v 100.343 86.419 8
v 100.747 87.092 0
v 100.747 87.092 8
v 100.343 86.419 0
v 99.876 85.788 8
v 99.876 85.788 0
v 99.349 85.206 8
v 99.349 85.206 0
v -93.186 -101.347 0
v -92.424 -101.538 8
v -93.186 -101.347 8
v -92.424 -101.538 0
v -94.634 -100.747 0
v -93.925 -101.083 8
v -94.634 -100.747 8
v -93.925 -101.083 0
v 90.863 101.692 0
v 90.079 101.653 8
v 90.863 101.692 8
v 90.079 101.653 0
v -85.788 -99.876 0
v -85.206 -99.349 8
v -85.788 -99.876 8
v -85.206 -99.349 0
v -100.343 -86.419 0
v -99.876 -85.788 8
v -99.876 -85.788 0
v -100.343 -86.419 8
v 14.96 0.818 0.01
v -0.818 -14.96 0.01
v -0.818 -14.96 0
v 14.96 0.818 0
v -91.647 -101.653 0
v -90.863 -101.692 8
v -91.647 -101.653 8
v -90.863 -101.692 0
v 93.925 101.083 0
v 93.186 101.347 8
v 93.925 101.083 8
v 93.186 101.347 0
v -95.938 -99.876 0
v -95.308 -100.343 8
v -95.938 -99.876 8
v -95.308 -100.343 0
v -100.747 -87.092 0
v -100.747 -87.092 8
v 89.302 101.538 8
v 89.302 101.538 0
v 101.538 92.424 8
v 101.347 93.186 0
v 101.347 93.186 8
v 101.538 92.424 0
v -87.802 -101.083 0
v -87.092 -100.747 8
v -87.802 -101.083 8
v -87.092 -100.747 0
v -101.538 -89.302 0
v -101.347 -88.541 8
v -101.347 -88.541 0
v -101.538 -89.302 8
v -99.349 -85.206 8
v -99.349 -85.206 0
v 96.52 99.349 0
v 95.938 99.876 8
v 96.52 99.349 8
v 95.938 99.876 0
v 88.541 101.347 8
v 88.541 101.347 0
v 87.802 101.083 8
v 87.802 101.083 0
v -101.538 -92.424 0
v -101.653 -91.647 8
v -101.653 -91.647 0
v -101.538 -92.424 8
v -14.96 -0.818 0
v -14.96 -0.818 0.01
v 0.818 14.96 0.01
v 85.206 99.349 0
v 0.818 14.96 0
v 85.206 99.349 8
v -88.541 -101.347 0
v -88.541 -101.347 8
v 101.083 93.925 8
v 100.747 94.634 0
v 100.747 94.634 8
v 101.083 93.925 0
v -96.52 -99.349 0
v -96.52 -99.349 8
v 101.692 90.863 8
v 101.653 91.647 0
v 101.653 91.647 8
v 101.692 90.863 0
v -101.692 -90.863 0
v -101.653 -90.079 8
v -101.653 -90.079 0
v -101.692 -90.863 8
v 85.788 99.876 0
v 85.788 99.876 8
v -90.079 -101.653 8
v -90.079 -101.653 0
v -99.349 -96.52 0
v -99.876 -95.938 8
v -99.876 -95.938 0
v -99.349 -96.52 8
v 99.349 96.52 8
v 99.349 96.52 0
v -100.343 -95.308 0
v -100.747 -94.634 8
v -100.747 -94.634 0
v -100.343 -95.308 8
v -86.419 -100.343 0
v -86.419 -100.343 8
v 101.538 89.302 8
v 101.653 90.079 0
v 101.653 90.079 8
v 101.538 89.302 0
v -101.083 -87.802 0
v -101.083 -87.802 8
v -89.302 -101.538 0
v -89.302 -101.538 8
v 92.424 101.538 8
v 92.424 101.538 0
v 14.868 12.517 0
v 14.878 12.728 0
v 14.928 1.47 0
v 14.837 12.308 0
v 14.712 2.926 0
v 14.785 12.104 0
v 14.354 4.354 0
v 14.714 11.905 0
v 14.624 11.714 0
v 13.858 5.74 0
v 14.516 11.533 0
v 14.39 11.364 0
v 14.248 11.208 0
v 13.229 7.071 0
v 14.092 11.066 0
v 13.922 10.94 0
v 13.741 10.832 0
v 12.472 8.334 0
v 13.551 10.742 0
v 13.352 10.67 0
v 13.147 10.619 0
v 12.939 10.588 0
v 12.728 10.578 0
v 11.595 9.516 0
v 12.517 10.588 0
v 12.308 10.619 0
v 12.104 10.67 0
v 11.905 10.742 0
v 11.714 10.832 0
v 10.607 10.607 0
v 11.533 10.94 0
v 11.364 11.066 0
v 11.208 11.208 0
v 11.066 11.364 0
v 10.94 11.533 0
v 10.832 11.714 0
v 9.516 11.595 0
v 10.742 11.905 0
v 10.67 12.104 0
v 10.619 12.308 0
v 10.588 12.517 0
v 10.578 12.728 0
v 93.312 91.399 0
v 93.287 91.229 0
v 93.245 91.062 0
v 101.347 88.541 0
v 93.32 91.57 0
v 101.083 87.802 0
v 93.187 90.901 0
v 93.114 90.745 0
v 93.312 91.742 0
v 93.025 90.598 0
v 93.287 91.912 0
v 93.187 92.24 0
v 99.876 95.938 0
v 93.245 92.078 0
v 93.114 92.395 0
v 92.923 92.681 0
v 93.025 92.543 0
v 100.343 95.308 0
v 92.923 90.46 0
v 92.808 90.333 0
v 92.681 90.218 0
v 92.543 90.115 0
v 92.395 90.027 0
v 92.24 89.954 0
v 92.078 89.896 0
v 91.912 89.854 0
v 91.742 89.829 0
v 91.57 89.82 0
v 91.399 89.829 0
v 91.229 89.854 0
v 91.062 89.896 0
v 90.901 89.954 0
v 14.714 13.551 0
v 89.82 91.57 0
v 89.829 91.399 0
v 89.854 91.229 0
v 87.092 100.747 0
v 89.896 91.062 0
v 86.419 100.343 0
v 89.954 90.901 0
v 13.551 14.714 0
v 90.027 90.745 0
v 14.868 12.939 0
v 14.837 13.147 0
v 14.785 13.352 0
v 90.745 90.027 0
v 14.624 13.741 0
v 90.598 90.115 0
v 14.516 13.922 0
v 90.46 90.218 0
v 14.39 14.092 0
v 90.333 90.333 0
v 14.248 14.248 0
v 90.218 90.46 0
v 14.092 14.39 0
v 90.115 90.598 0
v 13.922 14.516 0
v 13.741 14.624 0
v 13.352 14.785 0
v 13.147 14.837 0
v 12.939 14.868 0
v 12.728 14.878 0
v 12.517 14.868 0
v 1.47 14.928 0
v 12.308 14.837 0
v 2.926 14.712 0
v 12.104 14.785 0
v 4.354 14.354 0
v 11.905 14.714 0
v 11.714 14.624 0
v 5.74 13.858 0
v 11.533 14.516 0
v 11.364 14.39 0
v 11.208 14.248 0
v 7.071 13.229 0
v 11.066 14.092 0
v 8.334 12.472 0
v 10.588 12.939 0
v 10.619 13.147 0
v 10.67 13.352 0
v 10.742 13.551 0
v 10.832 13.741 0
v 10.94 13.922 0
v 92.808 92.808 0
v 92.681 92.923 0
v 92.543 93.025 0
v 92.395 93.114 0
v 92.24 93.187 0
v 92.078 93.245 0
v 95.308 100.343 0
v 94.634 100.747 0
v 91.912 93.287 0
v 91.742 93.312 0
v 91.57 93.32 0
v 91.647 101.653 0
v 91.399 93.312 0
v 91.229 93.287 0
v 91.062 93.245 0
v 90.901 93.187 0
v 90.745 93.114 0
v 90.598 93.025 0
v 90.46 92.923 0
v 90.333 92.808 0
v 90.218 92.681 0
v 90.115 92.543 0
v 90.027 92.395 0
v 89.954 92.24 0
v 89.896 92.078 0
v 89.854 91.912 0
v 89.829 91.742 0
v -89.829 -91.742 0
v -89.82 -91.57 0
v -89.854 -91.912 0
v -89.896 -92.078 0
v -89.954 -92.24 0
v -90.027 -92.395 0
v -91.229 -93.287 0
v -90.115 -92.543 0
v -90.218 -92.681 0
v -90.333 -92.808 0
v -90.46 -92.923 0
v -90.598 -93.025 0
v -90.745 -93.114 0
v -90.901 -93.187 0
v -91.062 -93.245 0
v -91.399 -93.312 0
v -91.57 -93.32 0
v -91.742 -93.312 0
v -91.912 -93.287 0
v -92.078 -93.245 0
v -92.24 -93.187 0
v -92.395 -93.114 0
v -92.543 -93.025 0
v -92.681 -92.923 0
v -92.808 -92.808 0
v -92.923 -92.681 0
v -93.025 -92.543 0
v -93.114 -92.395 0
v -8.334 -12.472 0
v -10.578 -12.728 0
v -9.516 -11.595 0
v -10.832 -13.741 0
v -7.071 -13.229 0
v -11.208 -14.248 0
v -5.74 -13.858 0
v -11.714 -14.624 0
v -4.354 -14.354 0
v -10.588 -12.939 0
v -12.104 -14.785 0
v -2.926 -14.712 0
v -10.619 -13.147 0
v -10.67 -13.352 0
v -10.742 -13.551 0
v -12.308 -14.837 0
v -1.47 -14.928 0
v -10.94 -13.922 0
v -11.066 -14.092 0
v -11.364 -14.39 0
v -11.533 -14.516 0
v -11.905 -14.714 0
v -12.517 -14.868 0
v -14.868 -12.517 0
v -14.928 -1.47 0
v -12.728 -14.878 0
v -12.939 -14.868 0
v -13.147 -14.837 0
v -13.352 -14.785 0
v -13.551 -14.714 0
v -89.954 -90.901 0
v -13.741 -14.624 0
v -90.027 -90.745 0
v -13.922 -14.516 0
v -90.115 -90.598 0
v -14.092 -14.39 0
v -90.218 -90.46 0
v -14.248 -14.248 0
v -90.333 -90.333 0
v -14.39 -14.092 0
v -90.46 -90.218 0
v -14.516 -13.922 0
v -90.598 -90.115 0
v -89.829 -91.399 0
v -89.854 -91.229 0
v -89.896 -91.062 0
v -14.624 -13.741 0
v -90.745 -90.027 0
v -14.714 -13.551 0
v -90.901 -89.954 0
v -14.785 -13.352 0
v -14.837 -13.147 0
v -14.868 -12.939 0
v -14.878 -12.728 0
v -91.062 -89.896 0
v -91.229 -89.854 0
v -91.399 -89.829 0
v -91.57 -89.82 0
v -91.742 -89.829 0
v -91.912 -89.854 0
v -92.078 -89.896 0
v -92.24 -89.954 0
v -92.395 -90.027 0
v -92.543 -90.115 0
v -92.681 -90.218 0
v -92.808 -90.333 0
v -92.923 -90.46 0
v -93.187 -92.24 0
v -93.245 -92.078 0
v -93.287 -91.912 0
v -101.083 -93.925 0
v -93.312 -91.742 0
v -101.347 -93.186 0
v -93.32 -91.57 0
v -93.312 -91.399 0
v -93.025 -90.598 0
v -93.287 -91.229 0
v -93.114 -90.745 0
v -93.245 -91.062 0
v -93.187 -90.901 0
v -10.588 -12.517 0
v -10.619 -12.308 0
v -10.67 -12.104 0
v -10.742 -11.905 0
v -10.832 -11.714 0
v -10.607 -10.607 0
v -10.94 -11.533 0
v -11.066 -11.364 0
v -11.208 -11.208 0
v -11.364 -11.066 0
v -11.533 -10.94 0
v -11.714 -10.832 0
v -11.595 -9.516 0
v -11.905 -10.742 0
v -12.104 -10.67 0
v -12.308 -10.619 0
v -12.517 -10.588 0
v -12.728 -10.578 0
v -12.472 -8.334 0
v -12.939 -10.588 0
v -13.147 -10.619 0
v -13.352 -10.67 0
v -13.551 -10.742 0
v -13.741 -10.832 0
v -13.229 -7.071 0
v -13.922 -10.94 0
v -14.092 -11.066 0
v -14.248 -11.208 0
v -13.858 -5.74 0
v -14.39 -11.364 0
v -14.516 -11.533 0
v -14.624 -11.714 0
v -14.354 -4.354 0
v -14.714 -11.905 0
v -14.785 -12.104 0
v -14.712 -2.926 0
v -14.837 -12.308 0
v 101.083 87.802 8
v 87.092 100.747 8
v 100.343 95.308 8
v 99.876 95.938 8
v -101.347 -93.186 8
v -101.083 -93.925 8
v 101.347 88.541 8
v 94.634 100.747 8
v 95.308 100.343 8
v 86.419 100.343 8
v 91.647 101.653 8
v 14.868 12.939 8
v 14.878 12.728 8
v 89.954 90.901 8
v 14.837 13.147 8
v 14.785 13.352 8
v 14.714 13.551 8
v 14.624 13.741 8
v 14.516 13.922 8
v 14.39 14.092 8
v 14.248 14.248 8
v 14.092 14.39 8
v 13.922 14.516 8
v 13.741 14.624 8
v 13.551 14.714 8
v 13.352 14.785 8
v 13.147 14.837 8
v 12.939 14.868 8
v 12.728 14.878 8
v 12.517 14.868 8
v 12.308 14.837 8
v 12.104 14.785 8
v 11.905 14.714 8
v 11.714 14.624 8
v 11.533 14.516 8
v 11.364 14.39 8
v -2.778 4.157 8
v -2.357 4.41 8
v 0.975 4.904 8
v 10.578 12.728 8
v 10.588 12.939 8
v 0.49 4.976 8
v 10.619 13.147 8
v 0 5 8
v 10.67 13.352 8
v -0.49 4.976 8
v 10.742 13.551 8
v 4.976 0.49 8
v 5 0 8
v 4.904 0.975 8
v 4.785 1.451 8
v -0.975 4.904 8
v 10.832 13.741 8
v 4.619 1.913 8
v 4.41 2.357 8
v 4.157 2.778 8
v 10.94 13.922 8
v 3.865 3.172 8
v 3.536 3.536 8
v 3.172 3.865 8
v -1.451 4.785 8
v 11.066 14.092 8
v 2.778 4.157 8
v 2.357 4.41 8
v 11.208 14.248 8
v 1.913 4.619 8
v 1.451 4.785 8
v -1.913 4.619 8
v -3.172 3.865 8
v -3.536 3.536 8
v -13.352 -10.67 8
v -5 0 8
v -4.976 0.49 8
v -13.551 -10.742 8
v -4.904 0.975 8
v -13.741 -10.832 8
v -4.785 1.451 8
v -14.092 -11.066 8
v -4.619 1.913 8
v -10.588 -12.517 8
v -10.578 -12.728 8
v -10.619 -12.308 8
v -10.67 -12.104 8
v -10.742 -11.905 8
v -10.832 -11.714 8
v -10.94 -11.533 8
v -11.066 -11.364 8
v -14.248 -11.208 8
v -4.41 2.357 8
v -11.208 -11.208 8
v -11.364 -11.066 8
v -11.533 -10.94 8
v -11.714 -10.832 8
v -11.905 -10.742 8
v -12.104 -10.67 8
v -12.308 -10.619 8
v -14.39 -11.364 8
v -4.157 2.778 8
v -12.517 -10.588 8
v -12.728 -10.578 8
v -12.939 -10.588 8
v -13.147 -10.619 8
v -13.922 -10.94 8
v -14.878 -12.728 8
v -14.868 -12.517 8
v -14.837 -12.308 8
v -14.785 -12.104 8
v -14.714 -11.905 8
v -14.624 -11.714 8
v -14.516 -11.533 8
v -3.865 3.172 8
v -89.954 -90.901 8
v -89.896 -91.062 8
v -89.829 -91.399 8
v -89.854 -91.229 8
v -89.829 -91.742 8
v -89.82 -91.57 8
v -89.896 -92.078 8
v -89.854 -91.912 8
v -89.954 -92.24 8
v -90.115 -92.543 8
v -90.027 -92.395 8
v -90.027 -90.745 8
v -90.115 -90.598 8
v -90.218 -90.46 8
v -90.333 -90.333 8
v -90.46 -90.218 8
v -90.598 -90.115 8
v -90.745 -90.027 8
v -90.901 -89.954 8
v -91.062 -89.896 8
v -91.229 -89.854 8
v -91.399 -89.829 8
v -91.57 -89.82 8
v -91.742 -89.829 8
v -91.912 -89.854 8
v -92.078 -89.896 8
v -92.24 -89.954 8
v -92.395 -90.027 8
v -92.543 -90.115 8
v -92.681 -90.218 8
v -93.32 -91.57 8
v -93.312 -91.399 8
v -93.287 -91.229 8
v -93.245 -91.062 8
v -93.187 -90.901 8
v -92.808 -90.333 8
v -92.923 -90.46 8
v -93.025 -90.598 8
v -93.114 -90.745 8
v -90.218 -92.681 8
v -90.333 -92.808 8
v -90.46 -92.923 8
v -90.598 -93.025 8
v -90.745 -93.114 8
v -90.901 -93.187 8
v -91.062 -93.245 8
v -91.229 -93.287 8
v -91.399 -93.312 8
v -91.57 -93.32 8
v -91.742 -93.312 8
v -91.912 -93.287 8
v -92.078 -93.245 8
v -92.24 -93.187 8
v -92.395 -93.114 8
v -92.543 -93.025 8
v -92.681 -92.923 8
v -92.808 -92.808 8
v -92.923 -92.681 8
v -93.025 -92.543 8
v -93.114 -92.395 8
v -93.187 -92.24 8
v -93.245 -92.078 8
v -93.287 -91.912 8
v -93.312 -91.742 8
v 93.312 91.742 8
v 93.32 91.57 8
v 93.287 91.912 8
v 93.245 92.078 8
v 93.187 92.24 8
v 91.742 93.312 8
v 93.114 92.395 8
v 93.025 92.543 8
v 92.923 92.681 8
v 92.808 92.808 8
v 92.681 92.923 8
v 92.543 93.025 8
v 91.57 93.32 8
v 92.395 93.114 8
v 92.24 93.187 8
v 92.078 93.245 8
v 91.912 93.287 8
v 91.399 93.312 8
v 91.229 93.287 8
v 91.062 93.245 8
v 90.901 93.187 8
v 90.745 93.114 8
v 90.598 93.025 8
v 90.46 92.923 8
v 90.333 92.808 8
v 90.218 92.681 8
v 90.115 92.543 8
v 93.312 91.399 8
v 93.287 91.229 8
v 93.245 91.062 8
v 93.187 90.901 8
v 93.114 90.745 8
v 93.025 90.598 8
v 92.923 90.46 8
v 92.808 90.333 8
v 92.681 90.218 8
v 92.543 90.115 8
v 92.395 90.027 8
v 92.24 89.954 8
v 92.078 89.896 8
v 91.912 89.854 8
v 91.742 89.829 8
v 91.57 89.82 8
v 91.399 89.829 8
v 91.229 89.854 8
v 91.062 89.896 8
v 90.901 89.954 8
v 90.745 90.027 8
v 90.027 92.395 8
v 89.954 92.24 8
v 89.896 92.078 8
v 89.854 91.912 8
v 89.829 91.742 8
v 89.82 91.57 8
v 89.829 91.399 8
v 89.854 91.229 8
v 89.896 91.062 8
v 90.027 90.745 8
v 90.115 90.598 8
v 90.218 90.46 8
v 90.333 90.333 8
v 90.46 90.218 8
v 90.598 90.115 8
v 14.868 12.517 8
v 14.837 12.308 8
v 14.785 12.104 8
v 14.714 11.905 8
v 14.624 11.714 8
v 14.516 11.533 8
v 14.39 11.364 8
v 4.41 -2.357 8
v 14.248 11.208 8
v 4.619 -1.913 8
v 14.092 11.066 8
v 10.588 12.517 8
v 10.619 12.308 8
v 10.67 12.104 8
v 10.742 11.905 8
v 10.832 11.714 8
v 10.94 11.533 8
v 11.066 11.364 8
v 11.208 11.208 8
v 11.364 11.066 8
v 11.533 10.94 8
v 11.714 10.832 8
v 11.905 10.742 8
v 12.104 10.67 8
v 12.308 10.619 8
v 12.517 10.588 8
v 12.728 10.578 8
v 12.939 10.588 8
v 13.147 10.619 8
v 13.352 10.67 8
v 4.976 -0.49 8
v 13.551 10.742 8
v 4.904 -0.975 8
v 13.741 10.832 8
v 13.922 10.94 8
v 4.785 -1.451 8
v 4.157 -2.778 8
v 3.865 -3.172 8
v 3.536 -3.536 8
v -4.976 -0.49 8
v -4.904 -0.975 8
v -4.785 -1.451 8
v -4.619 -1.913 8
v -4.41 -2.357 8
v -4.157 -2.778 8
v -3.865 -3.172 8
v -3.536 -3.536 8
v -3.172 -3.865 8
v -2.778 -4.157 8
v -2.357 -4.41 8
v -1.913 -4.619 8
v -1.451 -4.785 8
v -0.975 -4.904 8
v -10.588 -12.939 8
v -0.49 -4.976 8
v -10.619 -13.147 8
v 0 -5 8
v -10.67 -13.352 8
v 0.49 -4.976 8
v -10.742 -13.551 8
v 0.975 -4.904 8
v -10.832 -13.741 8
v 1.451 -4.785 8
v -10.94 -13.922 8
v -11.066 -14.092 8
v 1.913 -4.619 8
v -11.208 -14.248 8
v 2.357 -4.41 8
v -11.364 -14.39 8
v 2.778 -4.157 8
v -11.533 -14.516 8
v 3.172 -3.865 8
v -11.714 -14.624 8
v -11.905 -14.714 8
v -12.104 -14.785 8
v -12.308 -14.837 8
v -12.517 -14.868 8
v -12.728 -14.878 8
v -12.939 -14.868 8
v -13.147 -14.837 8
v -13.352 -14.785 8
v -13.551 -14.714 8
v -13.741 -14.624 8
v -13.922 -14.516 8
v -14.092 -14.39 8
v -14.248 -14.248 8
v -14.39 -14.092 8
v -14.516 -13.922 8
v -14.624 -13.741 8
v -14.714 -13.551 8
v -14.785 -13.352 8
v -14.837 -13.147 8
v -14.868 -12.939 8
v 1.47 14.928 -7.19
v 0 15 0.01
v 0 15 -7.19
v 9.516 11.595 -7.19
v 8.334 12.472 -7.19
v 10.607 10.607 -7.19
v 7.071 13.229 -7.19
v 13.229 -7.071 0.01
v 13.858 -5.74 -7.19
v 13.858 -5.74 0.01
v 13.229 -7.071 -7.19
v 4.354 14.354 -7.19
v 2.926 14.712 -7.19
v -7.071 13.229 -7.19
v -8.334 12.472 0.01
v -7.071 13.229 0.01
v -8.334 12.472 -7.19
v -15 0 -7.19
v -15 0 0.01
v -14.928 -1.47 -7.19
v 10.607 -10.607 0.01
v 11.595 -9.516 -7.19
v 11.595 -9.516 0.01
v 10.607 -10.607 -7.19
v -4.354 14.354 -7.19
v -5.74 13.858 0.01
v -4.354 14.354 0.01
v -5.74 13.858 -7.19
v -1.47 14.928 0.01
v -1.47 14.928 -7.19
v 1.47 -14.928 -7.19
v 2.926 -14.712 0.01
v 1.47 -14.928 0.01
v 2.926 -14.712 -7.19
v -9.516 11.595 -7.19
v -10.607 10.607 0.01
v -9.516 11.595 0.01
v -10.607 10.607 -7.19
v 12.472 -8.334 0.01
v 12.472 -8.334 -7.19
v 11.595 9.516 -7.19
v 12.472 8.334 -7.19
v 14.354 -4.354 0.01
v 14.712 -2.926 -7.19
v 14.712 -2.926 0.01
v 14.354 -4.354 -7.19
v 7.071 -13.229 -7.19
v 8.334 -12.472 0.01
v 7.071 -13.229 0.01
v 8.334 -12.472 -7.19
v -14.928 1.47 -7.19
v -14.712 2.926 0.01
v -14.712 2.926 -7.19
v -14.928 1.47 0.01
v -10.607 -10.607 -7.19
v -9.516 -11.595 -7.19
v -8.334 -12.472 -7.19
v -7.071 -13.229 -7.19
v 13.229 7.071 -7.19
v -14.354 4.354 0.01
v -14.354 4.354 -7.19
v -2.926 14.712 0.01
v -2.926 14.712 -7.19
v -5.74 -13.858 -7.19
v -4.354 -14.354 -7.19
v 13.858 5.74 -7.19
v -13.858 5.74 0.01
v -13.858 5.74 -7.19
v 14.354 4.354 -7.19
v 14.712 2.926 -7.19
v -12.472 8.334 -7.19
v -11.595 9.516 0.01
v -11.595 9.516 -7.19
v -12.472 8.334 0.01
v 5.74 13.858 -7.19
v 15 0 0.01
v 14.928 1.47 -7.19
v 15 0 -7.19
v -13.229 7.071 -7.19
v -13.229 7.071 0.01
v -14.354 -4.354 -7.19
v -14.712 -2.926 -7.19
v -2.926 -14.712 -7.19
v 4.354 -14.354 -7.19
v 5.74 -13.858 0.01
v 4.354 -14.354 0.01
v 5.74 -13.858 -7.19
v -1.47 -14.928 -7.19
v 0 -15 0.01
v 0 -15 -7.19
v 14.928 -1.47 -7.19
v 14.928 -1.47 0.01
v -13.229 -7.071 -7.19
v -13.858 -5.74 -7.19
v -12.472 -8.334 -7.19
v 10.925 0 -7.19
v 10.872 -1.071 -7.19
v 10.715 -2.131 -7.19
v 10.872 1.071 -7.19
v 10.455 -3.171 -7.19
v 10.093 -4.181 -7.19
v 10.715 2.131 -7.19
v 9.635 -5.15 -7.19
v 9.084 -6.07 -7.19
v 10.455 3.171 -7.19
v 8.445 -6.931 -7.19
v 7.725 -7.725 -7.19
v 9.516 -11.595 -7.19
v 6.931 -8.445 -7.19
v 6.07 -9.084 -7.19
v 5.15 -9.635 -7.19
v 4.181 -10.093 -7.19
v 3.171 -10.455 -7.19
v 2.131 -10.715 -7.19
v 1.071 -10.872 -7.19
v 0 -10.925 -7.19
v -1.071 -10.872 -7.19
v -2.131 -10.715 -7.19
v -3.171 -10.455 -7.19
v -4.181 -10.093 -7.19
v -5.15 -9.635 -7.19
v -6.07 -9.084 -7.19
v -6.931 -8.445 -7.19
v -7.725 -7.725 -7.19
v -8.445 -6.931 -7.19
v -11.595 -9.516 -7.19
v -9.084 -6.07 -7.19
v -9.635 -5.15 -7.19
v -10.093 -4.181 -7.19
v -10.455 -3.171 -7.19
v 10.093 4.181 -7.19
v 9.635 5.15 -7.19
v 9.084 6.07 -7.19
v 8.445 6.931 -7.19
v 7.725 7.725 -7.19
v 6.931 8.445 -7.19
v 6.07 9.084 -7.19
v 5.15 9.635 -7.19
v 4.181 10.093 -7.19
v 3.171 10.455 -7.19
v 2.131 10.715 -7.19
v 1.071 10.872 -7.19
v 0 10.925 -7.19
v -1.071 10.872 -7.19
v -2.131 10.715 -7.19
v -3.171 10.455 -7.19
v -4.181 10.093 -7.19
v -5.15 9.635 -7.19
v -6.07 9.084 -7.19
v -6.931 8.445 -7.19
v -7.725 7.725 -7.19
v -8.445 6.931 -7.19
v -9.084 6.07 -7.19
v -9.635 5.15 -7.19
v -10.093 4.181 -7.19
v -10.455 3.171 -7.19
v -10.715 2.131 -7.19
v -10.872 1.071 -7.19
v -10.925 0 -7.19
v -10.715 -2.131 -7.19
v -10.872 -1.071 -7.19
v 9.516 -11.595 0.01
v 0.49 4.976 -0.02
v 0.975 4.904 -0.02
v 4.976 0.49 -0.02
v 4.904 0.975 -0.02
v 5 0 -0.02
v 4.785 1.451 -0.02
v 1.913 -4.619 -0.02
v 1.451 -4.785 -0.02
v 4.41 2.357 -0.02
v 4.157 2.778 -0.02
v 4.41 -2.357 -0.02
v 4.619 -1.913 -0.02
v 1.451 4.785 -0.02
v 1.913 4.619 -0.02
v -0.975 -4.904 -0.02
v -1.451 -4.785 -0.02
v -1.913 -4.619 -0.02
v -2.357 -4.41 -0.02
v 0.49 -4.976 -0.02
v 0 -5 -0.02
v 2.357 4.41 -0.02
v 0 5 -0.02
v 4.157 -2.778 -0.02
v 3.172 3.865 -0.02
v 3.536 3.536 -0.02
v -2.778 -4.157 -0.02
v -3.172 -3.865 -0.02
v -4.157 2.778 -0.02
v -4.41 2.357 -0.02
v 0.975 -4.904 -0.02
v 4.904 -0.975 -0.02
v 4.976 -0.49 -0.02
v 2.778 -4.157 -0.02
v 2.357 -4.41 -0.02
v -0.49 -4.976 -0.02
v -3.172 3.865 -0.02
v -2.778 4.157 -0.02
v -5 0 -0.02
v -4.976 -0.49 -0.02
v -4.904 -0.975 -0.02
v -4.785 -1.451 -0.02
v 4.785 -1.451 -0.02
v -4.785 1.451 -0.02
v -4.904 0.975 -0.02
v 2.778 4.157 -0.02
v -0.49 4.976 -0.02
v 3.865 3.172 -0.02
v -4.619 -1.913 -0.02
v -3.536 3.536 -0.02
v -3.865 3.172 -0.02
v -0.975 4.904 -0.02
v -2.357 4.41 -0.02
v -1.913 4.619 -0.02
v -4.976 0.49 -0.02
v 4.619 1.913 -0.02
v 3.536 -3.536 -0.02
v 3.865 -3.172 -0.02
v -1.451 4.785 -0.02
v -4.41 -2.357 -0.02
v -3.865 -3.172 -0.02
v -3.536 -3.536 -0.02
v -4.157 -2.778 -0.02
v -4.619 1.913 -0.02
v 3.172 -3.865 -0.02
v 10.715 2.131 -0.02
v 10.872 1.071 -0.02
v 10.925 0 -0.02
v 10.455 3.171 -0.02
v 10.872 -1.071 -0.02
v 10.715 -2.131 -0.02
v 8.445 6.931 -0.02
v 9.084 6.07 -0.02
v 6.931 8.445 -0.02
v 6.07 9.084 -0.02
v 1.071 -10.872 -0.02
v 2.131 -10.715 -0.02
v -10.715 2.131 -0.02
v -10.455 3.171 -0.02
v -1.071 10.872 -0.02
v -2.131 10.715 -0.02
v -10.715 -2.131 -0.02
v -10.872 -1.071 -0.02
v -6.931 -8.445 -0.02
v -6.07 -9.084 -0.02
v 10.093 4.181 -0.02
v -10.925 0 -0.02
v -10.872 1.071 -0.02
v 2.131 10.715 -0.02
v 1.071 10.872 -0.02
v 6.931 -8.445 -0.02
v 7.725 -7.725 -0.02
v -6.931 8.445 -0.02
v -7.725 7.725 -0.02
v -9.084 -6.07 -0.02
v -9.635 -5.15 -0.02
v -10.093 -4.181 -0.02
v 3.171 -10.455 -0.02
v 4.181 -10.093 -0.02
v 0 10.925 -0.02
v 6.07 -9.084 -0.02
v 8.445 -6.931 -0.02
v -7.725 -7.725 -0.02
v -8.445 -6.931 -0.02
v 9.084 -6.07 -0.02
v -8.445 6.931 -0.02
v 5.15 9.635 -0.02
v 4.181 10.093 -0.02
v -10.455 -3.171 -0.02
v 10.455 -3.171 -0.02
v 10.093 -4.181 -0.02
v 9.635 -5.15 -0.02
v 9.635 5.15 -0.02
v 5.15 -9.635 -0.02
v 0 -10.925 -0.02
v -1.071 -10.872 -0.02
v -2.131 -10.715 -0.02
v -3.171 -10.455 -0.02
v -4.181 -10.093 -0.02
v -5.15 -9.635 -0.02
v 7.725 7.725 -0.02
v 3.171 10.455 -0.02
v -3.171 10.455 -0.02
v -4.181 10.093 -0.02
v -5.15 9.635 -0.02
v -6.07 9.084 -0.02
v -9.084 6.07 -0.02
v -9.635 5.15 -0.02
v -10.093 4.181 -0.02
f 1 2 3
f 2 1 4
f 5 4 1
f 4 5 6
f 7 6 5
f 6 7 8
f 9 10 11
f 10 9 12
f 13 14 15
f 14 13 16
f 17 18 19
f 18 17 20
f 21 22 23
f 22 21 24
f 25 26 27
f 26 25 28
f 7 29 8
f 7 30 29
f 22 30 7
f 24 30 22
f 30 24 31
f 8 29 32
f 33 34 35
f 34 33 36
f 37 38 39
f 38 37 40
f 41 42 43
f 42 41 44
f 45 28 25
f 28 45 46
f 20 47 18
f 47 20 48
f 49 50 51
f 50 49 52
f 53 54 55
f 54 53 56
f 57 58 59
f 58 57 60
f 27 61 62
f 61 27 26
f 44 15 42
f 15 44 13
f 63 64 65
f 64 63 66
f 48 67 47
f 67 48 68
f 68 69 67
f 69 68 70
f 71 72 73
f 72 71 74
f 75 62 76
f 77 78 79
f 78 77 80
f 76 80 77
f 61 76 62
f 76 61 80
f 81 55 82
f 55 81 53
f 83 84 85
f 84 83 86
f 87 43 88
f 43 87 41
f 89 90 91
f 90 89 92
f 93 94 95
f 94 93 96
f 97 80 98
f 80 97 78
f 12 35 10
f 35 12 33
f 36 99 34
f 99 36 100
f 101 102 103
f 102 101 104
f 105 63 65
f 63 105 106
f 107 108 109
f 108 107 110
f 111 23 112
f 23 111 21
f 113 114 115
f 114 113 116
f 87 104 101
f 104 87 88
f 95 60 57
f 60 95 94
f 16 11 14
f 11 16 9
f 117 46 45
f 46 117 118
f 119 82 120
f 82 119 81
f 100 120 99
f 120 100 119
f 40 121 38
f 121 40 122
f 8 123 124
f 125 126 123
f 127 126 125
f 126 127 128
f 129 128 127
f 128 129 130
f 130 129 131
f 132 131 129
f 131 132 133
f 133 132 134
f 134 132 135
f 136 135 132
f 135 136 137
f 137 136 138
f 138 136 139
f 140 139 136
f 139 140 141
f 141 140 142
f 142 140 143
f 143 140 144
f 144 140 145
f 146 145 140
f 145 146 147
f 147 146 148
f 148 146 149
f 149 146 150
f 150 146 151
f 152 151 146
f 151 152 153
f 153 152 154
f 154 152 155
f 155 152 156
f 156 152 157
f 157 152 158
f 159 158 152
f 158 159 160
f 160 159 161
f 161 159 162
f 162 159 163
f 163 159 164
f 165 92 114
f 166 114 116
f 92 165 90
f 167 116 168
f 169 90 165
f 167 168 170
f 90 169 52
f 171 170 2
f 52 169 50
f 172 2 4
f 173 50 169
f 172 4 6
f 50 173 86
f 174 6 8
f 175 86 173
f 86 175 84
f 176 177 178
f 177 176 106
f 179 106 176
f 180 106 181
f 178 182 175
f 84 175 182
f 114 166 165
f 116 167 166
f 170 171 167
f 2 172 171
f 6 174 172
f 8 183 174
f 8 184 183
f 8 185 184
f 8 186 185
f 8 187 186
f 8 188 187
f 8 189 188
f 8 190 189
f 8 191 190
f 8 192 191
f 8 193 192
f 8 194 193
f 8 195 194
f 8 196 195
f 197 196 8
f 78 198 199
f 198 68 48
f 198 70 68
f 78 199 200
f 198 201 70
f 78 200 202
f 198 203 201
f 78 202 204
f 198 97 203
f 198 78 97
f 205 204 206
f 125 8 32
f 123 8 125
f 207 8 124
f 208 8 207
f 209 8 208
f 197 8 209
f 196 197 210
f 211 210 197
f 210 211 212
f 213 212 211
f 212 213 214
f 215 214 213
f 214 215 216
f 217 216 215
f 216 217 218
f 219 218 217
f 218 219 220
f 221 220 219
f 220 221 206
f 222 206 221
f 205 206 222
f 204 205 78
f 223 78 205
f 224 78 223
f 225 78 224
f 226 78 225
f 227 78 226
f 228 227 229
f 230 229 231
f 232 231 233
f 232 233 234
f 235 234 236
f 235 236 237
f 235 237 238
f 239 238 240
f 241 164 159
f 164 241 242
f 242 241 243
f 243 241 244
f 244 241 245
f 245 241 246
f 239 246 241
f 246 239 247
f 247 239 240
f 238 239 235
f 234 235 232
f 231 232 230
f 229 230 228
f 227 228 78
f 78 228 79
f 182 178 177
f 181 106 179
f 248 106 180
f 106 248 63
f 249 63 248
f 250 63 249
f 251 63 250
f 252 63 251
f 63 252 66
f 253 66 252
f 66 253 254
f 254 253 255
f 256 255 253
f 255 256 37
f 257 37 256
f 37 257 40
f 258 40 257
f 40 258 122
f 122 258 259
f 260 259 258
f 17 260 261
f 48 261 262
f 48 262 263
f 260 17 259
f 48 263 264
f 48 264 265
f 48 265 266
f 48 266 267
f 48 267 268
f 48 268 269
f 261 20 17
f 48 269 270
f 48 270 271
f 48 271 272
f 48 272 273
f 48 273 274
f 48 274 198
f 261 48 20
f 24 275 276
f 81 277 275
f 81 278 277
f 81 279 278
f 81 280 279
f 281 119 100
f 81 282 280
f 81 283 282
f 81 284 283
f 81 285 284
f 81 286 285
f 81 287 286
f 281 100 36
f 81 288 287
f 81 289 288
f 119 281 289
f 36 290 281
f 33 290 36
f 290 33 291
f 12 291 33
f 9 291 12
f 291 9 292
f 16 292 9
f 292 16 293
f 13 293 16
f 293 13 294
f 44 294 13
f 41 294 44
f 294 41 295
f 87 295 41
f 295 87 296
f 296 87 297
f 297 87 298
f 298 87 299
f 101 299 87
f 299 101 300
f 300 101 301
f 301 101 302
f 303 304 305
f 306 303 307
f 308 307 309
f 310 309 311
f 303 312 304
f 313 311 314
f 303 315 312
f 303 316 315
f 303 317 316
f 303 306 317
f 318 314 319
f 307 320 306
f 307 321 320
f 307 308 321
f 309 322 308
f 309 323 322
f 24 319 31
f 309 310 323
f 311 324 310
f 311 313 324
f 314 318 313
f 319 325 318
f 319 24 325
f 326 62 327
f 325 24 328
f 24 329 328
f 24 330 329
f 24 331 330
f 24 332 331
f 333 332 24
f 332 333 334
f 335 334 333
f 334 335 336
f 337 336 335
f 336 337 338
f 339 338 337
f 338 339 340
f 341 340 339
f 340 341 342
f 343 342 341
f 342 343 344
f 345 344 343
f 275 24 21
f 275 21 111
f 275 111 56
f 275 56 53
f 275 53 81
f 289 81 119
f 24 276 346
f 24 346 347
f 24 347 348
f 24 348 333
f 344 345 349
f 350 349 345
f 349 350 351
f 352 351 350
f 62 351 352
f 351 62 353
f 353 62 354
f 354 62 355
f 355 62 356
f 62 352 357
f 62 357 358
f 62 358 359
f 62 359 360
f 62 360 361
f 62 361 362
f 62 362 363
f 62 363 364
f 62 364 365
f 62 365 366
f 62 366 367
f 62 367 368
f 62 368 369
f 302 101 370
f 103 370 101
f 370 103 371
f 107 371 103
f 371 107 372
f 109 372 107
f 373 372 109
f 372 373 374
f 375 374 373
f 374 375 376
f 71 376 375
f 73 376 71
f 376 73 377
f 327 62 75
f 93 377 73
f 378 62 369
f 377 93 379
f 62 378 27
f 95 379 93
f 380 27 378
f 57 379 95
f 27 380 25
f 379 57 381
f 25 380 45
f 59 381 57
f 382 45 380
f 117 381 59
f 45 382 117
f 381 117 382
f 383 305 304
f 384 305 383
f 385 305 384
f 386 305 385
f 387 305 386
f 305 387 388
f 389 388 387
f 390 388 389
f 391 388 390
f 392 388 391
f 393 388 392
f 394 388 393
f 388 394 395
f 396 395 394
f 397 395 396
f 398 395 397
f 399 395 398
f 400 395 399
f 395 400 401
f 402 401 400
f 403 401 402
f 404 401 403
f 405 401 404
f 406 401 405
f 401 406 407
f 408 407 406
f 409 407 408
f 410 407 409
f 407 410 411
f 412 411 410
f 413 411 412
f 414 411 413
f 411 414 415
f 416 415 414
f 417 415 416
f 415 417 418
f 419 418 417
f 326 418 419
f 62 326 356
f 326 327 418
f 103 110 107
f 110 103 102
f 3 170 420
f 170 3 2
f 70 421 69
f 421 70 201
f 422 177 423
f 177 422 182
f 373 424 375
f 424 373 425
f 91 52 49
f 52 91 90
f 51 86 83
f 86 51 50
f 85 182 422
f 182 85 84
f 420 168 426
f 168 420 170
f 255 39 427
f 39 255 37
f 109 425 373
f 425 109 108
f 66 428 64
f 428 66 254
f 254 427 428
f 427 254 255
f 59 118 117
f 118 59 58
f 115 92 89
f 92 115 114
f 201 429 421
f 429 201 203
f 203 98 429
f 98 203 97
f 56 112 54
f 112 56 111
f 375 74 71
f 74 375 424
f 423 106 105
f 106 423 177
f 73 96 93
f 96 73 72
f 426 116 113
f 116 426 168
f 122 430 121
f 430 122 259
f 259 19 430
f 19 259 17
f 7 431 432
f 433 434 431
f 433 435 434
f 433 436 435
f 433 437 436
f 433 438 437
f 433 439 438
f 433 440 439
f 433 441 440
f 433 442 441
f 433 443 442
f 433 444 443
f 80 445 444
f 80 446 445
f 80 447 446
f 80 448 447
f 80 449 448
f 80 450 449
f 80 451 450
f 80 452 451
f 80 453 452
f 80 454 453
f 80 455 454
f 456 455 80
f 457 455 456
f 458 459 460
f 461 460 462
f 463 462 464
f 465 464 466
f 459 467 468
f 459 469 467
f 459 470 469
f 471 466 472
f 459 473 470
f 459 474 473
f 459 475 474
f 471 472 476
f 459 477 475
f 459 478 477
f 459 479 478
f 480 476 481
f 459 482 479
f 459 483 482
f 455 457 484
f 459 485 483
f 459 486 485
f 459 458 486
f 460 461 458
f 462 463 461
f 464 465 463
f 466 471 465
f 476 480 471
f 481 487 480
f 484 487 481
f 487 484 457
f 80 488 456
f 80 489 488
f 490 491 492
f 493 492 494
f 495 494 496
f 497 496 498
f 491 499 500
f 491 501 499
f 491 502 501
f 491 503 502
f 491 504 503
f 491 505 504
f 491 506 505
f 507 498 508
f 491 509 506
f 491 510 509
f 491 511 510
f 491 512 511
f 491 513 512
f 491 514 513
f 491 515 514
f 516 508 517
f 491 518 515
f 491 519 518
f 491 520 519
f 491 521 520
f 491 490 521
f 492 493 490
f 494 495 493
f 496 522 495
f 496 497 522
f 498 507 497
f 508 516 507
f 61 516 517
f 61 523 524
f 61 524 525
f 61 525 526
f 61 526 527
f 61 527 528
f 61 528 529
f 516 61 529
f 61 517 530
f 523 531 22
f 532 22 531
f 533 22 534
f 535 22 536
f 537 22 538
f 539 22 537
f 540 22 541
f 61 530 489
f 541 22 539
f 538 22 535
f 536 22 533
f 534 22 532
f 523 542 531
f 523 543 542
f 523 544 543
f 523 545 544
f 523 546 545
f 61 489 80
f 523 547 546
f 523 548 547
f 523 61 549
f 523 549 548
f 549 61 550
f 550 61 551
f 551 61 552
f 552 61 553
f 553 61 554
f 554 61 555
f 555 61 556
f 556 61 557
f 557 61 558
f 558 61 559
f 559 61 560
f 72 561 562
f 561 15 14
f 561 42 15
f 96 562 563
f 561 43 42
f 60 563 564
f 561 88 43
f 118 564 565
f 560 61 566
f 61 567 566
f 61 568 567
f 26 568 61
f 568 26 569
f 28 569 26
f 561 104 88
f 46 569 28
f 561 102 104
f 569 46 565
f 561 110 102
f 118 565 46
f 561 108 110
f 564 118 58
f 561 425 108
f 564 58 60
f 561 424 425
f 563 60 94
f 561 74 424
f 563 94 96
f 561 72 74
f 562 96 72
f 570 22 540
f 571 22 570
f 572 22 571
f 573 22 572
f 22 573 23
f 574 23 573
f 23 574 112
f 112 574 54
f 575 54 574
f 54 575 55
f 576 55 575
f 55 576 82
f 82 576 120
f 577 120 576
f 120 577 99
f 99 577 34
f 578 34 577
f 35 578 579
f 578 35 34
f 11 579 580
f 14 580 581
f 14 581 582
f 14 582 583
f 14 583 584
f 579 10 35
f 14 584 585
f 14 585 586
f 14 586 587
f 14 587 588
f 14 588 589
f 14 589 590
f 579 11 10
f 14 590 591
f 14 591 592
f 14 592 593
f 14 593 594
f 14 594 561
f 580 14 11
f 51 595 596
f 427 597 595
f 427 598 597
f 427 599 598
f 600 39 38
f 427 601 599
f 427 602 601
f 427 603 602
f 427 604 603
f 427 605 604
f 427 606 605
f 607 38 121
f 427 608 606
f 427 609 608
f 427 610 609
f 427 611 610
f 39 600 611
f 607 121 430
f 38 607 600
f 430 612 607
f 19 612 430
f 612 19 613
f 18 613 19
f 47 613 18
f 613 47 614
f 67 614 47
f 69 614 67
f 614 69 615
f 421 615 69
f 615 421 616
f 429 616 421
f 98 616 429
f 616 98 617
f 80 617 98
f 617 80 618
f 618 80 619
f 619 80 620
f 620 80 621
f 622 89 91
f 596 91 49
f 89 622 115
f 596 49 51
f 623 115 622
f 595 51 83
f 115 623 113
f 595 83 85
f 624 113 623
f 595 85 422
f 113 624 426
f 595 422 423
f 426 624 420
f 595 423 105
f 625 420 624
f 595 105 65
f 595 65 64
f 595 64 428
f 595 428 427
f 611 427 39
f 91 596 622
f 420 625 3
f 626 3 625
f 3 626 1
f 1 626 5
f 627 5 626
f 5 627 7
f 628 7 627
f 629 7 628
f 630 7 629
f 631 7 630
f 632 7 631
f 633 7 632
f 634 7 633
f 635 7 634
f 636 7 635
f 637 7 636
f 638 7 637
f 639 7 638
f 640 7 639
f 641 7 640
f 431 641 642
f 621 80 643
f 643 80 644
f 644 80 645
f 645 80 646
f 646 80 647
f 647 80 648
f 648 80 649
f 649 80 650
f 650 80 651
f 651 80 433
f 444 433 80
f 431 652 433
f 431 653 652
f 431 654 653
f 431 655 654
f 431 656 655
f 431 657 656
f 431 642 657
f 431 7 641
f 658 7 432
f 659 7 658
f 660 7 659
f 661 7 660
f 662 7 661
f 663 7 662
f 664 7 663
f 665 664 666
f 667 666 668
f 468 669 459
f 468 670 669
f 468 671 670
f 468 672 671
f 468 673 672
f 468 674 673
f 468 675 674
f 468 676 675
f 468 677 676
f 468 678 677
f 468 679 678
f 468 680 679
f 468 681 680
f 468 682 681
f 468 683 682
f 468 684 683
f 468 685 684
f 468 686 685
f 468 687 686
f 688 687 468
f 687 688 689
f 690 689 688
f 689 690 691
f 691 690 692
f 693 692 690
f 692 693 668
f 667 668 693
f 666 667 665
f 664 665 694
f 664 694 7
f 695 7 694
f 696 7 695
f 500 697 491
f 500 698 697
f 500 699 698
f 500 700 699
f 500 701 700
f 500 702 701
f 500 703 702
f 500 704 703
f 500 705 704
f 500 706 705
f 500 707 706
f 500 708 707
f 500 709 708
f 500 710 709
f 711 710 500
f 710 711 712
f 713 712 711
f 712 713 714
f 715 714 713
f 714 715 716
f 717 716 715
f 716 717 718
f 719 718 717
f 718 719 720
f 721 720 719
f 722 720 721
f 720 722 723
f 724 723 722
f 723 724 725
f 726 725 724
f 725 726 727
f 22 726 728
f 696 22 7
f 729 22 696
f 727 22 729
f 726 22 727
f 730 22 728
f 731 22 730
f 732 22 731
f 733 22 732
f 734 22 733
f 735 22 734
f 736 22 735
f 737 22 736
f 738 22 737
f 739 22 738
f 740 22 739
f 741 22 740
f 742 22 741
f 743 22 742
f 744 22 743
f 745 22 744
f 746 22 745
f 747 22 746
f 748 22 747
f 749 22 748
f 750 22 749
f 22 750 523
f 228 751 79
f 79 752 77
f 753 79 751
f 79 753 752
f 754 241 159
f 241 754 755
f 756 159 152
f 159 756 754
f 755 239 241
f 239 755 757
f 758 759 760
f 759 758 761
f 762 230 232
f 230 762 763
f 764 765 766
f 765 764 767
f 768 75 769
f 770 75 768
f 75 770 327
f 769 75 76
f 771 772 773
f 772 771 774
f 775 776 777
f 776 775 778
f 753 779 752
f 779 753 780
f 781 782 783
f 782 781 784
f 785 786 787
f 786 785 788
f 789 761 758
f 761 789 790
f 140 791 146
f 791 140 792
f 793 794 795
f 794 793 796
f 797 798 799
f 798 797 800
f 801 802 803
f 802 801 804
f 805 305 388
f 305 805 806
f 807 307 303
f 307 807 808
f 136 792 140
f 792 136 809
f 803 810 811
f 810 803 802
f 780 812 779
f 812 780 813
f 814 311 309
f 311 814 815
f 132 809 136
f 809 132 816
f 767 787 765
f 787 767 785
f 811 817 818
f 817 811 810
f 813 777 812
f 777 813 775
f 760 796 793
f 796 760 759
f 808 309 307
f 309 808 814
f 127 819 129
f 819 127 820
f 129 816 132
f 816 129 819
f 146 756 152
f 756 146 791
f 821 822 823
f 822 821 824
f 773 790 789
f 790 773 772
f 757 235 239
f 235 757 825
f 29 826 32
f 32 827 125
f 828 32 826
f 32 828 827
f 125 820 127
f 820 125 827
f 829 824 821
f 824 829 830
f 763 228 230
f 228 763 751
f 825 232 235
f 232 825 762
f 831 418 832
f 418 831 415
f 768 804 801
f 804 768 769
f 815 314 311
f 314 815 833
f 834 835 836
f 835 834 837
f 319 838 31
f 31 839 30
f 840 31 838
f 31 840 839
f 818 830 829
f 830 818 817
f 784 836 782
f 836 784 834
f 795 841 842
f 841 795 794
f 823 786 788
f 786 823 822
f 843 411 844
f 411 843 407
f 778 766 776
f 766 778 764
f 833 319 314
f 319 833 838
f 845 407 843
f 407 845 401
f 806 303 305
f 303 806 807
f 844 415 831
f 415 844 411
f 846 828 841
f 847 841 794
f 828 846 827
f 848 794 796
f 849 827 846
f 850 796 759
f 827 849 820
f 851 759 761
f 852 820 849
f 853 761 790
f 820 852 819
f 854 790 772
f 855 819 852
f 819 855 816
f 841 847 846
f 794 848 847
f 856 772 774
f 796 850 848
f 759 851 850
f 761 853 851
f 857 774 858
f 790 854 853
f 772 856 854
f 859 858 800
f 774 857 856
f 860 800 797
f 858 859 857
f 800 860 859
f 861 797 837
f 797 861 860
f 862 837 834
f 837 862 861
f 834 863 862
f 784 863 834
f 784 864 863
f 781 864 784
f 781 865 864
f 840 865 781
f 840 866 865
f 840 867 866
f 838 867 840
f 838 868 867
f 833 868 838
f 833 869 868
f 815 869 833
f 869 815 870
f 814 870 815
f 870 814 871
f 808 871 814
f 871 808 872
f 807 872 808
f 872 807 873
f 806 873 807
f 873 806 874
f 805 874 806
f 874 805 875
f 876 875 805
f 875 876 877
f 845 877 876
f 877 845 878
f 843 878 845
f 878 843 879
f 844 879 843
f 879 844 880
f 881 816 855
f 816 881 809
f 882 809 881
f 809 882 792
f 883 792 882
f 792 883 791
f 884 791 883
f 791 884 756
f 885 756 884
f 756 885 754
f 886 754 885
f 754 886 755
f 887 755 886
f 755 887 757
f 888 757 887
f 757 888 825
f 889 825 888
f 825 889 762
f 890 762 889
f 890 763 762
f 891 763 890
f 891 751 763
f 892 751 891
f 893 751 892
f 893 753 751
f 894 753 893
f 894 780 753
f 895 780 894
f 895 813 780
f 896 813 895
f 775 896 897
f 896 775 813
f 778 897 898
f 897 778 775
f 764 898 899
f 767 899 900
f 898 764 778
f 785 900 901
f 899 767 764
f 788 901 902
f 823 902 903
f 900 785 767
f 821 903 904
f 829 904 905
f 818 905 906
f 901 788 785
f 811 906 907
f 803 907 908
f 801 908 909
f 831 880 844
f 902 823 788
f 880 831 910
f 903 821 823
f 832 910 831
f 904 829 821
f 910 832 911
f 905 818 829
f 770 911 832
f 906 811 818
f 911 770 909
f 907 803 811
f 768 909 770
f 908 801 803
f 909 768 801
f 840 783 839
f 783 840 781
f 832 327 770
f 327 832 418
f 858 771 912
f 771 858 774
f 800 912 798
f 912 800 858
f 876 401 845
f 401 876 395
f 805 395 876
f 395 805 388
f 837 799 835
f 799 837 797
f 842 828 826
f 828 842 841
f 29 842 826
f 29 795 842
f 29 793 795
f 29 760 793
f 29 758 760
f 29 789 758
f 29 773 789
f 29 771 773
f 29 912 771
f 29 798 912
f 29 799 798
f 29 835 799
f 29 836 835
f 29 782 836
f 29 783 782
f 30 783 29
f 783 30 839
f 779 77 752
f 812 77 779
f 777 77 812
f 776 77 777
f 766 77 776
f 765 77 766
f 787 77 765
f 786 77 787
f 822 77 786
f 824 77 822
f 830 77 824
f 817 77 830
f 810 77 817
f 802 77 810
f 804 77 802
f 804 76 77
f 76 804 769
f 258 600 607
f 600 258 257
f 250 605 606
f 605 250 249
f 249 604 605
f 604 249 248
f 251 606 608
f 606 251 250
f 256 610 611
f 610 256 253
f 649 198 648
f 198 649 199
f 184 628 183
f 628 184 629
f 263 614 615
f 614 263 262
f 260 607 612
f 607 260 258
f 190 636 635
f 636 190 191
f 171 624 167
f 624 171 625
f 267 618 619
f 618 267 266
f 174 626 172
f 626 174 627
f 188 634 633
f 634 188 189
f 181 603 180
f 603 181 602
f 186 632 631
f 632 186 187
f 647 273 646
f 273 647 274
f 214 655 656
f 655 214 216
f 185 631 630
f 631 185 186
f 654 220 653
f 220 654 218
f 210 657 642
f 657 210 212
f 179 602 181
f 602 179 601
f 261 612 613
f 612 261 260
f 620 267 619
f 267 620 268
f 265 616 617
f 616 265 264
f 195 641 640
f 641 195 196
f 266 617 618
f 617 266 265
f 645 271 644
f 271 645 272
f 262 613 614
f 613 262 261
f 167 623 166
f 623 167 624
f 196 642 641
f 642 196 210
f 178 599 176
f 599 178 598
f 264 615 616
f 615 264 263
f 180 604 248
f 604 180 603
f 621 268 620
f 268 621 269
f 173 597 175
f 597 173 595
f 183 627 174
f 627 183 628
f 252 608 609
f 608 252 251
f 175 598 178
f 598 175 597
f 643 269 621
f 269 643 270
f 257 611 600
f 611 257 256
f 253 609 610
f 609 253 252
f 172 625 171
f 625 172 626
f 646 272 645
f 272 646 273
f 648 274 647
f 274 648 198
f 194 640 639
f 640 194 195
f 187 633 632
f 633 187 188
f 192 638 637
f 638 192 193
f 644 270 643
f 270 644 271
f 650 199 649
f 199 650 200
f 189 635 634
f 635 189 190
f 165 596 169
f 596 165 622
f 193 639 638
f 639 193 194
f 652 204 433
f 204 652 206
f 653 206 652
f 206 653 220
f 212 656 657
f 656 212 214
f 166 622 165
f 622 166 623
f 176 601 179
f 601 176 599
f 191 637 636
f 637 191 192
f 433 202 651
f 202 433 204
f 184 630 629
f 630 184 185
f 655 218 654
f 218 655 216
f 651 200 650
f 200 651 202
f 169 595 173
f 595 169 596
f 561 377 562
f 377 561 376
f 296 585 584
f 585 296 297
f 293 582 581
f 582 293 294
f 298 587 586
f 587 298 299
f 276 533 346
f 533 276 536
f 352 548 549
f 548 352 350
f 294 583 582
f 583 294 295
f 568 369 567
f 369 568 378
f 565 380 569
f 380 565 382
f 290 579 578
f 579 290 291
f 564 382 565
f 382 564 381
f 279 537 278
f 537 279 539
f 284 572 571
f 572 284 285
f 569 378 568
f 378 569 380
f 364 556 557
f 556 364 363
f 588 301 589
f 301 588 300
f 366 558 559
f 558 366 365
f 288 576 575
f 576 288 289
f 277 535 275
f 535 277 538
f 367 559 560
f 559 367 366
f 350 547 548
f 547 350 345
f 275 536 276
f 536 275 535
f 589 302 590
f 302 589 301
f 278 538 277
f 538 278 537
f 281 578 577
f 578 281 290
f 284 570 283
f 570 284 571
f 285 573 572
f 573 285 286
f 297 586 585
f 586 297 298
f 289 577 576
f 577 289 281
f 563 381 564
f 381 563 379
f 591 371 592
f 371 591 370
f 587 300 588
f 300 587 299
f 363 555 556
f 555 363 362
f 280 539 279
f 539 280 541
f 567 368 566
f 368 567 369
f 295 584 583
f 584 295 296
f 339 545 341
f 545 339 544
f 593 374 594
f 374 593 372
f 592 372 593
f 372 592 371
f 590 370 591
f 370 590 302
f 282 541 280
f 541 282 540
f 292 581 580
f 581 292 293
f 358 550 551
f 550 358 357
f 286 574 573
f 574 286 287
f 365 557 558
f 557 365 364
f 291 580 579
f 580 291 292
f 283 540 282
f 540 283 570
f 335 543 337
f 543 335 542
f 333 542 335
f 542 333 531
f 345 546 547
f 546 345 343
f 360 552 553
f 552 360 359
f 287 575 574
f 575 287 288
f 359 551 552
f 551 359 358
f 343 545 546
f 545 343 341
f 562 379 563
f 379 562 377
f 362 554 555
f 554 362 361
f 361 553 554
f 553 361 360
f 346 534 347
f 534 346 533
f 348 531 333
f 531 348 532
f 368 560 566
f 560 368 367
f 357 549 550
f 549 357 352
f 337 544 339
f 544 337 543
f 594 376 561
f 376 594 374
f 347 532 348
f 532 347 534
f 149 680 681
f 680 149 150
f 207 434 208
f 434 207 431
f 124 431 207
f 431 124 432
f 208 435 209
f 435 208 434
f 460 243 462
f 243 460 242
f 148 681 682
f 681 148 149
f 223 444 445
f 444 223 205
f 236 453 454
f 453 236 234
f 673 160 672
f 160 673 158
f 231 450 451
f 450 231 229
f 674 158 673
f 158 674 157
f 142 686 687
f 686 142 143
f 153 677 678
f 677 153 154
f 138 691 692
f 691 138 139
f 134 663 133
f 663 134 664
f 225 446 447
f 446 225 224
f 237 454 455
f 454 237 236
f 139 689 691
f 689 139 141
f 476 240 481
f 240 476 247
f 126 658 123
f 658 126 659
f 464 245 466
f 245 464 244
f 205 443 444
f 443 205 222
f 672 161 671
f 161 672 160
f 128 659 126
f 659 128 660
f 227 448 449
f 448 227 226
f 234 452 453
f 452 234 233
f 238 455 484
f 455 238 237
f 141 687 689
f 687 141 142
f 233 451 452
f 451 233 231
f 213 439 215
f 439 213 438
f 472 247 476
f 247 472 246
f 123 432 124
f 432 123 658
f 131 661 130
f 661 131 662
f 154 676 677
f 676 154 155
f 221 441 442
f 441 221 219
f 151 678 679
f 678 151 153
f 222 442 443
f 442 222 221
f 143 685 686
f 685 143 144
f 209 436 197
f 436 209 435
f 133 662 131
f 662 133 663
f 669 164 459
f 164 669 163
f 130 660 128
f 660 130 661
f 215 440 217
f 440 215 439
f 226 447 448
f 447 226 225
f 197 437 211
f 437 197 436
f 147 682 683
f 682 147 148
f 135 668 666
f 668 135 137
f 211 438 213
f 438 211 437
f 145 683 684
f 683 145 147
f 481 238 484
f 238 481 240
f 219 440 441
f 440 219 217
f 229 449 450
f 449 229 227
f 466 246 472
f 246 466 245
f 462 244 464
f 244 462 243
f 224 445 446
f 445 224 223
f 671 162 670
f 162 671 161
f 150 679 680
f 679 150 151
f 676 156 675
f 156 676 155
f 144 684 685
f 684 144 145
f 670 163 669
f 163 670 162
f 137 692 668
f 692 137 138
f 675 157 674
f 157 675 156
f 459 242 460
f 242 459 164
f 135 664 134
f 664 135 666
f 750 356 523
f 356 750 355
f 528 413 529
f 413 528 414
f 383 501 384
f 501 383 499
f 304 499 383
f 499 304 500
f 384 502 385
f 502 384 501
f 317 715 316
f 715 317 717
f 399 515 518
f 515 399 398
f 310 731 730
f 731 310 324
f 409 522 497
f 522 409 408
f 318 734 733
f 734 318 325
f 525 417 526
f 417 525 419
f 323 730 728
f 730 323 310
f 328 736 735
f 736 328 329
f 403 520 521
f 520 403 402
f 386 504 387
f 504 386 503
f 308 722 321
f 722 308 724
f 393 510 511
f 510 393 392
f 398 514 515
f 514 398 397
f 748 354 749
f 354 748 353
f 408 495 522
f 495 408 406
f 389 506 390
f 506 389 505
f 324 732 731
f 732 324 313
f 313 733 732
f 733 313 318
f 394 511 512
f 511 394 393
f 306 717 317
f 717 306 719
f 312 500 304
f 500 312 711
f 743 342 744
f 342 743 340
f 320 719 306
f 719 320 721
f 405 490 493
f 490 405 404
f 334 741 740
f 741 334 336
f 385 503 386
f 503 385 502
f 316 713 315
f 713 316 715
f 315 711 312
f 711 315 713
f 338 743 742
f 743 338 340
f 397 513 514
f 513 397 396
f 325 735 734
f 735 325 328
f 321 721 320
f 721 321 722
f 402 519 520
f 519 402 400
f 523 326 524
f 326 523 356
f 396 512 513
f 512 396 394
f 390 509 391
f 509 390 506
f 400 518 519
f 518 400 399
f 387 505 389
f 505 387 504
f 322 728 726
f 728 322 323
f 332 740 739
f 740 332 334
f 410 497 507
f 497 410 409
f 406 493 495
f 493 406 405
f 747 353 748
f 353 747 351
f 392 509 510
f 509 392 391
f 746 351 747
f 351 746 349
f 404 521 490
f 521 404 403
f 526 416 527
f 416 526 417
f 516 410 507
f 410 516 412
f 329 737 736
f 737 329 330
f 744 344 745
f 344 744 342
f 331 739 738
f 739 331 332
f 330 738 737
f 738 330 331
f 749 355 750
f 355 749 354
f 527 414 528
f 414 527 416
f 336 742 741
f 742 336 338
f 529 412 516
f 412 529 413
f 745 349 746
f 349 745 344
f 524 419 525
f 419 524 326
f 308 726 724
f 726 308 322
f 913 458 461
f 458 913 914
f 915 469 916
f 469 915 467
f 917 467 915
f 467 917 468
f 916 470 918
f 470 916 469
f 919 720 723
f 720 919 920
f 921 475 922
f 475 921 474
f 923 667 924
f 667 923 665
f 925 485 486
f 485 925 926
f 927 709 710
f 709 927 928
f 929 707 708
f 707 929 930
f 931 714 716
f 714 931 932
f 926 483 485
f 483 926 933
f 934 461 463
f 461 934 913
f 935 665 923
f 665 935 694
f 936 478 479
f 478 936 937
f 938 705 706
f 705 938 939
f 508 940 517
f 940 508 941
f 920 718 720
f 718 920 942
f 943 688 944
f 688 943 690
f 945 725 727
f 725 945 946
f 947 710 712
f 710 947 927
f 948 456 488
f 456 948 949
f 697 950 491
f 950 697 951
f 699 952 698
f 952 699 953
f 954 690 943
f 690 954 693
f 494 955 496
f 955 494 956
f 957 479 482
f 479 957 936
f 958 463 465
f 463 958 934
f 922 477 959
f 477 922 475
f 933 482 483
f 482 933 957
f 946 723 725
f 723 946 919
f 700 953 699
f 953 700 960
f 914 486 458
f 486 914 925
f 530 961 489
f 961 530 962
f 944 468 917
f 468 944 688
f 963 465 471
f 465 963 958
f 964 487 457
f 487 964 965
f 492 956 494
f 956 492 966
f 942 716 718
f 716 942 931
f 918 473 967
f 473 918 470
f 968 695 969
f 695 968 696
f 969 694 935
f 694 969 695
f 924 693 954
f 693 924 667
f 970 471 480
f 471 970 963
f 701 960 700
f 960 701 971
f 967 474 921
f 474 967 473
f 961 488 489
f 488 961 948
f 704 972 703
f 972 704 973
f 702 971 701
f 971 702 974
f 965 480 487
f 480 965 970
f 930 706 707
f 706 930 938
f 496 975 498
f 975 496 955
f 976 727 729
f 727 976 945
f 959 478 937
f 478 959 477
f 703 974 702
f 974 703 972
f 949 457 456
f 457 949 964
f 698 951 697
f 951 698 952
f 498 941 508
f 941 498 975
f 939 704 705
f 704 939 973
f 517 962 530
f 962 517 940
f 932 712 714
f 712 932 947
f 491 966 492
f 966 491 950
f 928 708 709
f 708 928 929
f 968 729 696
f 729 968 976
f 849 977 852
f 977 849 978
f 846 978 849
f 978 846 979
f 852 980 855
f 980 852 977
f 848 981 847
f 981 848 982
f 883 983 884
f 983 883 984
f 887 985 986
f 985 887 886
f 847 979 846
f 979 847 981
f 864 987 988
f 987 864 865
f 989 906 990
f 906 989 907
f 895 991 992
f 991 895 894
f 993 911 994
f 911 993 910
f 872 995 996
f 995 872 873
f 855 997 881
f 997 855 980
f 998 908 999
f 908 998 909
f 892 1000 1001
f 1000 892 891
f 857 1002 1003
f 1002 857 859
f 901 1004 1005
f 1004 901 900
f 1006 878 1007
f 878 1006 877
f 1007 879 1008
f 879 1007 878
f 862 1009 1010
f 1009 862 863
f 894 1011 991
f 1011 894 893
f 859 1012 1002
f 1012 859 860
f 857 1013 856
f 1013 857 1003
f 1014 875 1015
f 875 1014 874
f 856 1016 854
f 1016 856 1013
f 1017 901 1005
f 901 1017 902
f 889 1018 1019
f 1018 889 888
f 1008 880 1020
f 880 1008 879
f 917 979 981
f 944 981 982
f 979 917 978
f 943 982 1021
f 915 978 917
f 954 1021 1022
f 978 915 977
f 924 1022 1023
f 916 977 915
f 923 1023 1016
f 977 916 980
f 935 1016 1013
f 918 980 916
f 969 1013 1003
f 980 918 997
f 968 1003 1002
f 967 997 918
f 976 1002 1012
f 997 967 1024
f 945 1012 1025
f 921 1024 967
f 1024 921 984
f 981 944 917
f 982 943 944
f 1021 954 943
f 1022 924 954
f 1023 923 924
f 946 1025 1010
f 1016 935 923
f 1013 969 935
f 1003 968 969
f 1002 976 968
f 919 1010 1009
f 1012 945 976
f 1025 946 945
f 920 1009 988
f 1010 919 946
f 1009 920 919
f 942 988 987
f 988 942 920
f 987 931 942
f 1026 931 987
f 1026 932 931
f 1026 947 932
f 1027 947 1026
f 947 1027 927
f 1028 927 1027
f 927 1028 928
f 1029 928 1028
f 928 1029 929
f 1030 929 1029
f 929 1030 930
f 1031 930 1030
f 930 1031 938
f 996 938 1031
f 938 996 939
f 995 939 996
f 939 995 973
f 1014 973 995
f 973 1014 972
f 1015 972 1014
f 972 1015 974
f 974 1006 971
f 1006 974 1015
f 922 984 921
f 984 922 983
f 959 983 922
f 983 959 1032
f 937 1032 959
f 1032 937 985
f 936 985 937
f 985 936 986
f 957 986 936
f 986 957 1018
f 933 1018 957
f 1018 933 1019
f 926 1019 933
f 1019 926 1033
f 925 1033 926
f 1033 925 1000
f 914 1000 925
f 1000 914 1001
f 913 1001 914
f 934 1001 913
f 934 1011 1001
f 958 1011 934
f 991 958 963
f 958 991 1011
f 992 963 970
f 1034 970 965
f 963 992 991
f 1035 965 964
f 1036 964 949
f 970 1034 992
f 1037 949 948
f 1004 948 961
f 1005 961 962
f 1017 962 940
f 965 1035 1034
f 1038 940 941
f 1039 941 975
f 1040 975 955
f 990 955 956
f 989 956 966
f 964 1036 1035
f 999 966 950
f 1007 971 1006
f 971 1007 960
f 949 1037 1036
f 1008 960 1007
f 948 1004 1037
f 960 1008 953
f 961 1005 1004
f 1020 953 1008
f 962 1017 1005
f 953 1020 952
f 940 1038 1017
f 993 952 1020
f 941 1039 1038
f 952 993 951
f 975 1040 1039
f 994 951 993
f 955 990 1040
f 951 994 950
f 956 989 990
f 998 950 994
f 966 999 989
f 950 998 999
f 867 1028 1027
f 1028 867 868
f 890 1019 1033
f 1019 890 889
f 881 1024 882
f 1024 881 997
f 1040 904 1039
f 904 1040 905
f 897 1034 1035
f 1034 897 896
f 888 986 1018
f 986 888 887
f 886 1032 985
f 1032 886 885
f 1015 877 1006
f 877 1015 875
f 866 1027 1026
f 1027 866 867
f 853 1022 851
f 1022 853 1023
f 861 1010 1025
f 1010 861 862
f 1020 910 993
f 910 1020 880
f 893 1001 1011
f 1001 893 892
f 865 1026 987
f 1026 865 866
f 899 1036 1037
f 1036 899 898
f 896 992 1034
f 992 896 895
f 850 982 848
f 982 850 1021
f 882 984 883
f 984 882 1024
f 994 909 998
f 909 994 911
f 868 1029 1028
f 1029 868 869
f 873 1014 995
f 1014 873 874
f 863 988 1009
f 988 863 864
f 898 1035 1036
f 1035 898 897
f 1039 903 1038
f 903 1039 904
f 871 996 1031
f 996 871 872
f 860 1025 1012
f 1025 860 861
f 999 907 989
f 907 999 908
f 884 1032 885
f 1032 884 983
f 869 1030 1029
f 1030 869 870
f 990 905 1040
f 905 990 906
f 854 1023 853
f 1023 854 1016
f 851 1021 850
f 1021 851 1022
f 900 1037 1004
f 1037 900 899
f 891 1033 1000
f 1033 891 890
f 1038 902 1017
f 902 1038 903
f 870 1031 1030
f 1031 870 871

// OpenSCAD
// Gen-DD — front BEARING BRIDGE (bar endbell, 2026-10-10): a 608 boss on a 20 mm wide bar that spans the
// two frame rods at 45 deg and 45+180 deg (R = flange_bolt_r). The front bridge uses the rods at 45/225 deg, the rear
// bridge the rods at 135/315 deg, so the two bridges cross at 90 deg and the stator is held at 4 points.
// A bar instead of a full disc is what lets this big-ring kit fit ONE 410 mm plate. Print flat face DOWN (boss up, no supports).
// Brace holes (temporary M4 jack rods, R = brace_r) sit on the bar axis.
include <parameters.scad>;
$fn = 64;
bar_w = 20;
bar_len = 2 * (flange_bolt_r + 9);
module bar_2d() { offset(r=8) offset(delta=-8) square([bar_len, bar_w], center=true); }
difference() {
    rotate([0, 0, 45]) union() {
        linear_extrude(endbell_thick) bar_2d();
        translate([0, 0, -bearing_h + 0.01]) cylinder(d=30, h=bearing_h);
    }
    translate([0, 0, -bearing_h - 0.1]) cylinder(d=endbell_shaft_clear, h=50);
    translate([0, 0, -bearing_h - 0.02]) cylinder(d=bearing_d, h=bearing_h);
    for (s = [0, 180]) rotate([0, 0, 45 + s]) translate([flange_bolt_r, 0, -20]) cylinder(d=m3_clear, h=60);
    for (a = brace_angles) translate([brace_r*cos(a), brace_r*sin(a), -20]) cylinder(d=brace_d, h=50);
}
